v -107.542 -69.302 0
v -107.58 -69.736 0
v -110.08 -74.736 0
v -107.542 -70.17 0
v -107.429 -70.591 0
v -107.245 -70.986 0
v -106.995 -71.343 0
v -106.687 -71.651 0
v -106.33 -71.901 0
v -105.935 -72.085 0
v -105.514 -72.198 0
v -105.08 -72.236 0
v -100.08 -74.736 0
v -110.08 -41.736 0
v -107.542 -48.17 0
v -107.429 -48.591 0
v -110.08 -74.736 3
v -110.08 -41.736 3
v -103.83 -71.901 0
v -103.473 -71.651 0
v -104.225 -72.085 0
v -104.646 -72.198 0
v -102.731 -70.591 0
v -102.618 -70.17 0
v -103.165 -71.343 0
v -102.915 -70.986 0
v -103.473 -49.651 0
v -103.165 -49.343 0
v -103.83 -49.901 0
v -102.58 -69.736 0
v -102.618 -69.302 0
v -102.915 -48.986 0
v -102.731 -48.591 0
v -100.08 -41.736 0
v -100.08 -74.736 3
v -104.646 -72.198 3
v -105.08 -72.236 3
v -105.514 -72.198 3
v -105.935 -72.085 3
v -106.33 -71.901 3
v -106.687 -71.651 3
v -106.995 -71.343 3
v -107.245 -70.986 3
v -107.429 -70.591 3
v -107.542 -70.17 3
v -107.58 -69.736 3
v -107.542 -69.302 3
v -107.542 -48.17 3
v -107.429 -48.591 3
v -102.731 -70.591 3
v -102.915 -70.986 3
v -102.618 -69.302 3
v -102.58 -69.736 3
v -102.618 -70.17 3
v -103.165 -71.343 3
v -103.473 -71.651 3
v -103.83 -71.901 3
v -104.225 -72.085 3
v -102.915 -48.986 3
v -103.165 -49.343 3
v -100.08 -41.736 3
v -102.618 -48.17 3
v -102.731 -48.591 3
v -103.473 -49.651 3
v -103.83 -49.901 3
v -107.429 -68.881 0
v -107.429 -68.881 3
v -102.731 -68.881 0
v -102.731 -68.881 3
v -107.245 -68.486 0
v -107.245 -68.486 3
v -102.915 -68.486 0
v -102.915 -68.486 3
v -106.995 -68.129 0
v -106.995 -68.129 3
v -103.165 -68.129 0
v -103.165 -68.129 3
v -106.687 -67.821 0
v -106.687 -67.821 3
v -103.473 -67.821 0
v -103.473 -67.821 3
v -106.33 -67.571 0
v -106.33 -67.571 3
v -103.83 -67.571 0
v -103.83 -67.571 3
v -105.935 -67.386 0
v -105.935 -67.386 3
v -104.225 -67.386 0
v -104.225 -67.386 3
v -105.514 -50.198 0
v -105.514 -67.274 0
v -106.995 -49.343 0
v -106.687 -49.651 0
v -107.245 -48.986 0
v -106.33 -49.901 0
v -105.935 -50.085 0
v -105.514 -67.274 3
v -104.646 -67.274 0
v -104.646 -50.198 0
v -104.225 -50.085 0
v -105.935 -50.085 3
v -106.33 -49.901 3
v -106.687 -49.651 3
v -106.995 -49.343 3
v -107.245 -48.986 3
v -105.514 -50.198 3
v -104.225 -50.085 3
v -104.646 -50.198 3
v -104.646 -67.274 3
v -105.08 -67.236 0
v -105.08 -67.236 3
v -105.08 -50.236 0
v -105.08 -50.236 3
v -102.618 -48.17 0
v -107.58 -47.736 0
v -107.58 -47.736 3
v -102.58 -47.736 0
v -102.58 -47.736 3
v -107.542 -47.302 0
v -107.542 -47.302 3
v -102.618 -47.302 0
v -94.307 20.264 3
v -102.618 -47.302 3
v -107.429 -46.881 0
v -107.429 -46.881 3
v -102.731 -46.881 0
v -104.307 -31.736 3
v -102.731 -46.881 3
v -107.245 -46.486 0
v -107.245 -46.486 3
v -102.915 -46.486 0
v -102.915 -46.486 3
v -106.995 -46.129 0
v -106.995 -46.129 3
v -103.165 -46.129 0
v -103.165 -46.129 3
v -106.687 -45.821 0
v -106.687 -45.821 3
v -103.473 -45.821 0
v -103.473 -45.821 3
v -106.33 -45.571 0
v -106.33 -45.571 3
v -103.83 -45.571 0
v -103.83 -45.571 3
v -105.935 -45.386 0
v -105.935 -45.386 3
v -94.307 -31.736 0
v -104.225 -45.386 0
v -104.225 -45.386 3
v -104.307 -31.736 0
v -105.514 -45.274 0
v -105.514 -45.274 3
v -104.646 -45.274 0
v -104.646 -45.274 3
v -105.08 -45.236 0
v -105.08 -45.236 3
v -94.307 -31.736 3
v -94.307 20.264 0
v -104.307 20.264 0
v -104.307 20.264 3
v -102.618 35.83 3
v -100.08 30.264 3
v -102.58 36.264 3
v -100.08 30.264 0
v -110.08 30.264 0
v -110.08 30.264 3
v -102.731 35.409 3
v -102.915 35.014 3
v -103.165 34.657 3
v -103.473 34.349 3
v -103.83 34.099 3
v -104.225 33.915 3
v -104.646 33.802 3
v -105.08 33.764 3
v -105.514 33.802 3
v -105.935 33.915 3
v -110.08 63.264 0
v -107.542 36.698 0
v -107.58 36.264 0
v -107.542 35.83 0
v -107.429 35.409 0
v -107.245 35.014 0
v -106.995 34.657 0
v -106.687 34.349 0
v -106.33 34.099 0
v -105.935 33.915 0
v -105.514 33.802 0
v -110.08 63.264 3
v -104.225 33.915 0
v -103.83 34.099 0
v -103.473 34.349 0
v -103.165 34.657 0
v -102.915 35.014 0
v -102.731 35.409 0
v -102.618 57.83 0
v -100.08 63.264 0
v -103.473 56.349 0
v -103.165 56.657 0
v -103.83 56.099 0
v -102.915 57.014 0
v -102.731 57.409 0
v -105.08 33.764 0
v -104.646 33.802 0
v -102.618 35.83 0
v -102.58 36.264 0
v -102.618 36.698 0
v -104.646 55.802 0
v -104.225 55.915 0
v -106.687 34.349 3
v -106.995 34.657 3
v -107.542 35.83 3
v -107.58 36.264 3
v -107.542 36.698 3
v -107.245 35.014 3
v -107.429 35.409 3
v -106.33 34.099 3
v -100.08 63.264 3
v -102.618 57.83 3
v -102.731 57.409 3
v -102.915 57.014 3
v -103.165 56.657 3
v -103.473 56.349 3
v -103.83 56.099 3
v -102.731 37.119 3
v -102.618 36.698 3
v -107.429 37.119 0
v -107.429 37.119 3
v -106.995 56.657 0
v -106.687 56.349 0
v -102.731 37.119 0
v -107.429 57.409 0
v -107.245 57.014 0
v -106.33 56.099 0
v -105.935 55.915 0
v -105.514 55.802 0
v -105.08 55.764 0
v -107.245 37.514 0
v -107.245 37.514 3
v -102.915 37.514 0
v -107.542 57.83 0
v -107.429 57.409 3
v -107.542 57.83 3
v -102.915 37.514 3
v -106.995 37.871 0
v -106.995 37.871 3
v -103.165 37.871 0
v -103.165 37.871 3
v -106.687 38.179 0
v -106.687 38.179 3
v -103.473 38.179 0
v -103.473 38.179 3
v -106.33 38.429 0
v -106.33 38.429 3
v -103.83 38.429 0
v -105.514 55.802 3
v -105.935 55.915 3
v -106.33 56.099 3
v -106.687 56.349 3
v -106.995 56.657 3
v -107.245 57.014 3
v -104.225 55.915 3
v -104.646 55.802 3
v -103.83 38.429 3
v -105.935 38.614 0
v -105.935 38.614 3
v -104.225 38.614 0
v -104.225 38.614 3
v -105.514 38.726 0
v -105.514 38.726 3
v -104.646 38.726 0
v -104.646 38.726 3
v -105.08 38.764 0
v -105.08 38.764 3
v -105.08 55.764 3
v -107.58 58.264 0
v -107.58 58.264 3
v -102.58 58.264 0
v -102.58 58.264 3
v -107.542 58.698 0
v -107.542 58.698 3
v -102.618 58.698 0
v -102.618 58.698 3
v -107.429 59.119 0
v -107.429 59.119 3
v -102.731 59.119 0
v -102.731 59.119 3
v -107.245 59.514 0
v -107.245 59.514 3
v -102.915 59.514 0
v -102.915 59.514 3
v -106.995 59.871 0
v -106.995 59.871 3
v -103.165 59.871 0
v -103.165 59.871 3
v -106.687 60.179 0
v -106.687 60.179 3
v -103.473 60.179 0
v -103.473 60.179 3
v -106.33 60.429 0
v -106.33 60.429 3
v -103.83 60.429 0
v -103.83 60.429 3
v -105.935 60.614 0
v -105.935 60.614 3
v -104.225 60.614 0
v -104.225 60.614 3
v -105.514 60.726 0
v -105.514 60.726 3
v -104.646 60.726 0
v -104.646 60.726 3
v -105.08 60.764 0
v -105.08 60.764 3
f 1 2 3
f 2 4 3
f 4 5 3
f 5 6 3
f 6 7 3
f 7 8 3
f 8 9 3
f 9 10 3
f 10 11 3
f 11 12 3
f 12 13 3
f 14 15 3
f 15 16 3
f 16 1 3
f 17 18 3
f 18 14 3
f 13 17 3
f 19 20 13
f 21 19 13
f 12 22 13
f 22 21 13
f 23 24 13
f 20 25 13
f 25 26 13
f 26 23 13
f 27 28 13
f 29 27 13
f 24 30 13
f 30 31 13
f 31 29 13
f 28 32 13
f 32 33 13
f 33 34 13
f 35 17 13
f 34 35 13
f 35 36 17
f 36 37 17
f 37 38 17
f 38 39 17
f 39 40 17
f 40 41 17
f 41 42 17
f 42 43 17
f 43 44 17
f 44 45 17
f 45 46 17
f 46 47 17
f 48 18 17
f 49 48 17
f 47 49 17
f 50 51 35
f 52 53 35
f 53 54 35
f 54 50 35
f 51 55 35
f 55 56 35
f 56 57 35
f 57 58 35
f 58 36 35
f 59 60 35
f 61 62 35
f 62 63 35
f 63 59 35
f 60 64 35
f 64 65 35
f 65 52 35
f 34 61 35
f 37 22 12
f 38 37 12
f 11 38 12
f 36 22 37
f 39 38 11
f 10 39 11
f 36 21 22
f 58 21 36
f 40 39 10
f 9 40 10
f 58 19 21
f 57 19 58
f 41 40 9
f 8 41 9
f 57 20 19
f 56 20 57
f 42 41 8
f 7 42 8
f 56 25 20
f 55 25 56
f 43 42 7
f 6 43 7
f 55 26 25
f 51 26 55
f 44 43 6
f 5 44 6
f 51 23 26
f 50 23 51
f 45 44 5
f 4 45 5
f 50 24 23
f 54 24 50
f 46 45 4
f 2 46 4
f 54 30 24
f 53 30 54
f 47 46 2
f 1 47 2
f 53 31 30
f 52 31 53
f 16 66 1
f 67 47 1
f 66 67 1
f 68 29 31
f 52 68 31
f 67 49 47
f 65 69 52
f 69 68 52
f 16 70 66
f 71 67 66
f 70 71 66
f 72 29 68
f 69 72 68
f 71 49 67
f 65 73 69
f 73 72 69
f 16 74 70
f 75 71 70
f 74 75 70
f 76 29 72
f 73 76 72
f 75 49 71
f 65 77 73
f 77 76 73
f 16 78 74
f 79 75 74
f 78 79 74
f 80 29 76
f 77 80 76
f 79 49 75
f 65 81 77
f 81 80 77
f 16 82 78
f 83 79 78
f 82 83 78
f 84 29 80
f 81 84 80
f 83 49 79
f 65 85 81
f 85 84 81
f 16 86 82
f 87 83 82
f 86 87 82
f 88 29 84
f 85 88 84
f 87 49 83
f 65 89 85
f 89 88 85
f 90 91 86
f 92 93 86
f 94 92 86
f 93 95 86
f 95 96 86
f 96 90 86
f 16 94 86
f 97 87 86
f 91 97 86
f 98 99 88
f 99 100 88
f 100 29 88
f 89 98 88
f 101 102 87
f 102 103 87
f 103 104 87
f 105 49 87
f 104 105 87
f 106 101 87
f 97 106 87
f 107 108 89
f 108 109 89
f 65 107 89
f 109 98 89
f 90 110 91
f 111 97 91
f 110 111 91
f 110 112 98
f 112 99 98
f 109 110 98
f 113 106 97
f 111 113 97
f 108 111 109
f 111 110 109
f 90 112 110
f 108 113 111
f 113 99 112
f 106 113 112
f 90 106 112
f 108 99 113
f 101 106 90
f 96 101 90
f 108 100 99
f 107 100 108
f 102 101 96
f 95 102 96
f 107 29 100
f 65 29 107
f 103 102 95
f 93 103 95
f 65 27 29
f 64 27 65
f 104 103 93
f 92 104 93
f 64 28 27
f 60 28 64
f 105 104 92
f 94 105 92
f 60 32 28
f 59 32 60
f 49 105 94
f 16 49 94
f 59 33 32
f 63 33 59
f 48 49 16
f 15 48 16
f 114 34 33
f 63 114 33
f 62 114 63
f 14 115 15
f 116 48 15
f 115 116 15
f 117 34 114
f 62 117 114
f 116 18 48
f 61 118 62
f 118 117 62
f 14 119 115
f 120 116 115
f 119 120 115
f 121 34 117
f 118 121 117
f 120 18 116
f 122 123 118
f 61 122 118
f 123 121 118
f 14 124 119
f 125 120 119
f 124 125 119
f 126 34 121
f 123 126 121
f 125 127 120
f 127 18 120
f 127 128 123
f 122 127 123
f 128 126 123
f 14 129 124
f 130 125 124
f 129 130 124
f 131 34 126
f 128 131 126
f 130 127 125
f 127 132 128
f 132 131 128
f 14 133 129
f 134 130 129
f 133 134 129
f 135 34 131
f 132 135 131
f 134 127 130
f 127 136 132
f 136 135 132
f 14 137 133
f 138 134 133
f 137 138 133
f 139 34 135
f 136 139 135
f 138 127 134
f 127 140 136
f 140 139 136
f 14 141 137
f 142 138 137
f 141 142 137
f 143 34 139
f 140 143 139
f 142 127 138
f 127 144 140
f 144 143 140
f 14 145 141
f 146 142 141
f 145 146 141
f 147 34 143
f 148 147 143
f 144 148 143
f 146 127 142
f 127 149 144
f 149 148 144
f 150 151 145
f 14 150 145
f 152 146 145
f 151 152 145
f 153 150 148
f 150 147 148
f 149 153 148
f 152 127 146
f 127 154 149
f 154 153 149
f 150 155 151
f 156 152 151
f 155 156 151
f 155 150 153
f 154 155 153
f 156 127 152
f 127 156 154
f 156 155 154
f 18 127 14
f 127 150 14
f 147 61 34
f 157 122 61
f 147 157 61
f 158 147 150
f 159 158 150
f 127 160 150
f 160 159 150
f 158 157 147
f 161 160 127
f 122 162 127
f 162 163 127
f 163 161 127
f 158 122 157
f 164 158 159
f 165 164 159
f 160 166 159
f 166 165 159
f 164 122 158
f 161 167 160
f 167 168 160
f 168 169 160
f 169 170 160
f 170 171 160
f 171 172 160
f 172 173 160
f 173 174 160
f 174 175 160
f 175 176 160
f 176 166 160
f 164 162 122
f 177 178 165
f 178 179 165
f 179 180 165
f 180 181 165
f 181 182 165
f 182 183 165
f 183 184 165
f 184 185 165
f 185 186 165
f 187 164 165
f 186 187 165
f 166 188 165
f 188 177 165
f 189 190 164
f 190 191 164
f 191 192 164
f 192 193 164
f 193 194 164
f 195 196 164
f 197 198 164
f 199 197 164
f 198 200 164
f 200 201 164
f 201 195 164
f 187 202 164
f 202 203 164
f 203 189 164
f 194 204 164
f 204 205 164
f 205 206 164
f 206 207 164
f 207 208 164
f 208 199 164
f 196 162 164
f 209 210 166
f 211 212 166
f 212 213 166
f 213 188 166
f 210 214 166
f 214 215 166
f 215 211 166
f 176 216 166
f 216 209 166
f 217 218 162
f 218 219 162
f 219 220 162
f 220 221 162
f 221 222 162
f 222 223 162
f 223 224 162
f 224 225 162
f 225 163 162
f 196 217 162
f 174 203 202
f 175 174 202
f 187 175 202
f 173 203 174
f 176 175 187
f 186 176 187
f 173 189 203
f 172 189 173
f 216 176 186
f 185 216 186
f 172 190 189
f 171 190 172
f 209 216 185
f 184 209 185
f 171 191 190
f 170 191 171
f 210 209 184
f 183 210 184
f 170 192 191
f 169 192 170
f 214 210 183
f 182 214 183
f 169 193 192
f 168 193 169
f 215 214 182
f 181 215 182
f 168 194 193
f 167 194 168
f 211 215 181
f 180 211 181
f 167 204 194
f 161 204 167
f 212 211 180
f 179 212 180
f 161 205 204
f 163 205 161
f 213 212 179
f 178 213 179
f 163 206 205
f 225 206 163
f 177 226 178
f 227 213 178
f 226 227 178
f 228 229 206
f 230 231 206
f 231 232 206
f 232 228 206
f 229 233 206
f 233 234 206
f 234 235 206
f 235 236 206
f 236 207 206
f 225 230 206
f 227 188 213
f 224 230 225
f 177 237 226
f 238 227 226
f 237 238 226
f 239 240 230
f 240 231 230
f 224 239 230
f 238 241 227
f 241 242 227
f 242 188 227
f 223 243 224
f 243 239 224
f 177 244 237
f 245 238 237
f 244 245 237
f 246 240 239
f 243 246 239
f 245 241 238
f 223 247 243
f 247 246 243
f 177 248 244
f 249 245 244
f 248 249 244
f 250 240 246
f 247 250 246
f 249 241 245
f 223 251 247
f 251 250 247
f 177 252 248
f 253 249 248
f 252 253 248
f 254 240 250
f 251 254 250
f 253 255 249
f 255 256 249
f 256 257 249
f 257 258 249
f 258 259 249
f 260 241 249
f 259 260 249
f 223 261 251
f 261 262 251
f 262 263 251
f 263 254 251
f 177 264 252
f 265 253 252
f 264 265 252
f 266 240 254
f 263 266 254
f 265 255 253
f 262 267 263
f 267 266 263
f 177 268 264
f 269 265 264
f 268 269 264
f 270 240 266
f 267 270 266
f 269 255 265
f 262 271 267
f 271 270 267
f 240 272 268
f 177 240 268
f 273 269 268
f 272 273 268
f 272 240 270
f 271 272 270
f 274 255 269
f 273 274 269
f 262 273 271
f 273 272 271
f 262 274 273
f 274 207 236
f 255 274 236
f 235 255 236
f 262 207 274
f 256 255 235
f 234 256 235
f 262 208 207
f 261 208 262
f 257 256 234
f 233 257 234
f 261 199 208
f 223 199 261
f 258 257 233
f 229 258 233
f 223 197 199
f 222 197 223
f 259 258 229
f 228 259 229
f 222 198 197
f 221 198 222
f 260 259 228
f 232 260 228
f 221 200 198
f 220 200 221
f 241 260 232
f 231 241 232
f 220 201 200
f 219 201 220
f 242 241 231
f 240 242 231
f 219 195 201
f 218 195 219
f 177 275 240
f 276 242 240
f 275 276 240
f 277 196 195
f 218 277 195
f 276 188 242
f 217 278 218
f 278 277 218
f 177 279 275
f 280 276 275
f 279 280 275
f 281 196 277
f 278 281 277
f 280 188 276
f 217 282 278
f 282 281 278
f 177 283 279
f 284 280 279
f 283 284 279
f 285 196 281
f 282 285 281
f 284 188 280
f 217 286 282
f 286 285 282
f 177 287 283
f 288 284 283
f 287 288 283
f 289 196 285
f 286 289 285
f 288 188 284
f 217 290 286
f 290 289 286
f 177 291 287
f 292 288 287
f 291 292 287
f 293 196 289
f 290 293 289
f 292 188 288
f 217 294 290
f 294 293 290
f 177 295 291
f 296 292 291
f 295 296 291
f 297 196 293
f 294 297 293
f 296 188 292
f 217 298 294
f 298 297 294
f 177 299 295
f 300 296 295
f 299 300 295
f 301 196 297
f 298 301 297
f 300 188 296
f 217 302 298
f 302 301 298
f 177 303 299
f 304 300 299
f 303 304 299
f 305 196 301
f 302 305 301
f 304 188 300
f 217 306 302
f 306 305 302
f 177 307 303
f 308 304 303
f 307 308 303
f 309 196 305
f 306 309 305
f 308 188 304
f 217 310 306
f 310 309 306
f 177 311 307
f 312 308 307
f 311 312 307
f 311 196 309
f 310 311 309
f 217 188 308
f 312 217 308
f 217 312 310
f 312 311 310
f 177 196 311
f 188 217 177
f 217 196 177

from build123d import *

# Parameters (mm, degrees)
ESQUISSE1_R        = 2.5
BOSS_EXTRU_1_DEPTH = 3


with BuildPart() as part:
    # Esquisse1 → Boss.-Extru.1 (new body)
    with BuildSketch(Plane.XY):
        Polygon((-100.080131723, 30.264285714), (-100.080131723, 63.264285714), (-110.080131723, 63.264285714), (-110.080131723, 30.264285714), (-104.306629031, 20.264285714), (-104.306629031, -31.735714286), (-110.080131723, -41.735714286), (-110.080131723, -74.735714286), (-100.080131723, -74.735714286), (-100.080131723, -41.735714286), (-94.306629031, -31.735714286), (-94.306629031, 20.264285714), align=None)
        with Locations((-105.080131723, 58.264285714)):
            Circle(ESQUISSE1_R, mode=Mode.SUBTRACT)
        with Locations((-105.080131723, 36.264285714)):
            Circle(ESQUISSE1_R, mode=Mode.SUBTRACT)
        with Locations(Location((-105.080131723, -47.735714286, 0), (0, 0, 180))):
            Circle(ESQUISSE1_R, mode=Mode.SUBTRACT)
        with Locations(Location((-105.080131723, -69.735714286, 0), (0, 0, 180))):
            Circle(ESQUISSE1_R, mode=Mode.SUBTRACT)
    extrude(amount=BOSS_EXTRU_1_DEPTH)


solid = part.part
